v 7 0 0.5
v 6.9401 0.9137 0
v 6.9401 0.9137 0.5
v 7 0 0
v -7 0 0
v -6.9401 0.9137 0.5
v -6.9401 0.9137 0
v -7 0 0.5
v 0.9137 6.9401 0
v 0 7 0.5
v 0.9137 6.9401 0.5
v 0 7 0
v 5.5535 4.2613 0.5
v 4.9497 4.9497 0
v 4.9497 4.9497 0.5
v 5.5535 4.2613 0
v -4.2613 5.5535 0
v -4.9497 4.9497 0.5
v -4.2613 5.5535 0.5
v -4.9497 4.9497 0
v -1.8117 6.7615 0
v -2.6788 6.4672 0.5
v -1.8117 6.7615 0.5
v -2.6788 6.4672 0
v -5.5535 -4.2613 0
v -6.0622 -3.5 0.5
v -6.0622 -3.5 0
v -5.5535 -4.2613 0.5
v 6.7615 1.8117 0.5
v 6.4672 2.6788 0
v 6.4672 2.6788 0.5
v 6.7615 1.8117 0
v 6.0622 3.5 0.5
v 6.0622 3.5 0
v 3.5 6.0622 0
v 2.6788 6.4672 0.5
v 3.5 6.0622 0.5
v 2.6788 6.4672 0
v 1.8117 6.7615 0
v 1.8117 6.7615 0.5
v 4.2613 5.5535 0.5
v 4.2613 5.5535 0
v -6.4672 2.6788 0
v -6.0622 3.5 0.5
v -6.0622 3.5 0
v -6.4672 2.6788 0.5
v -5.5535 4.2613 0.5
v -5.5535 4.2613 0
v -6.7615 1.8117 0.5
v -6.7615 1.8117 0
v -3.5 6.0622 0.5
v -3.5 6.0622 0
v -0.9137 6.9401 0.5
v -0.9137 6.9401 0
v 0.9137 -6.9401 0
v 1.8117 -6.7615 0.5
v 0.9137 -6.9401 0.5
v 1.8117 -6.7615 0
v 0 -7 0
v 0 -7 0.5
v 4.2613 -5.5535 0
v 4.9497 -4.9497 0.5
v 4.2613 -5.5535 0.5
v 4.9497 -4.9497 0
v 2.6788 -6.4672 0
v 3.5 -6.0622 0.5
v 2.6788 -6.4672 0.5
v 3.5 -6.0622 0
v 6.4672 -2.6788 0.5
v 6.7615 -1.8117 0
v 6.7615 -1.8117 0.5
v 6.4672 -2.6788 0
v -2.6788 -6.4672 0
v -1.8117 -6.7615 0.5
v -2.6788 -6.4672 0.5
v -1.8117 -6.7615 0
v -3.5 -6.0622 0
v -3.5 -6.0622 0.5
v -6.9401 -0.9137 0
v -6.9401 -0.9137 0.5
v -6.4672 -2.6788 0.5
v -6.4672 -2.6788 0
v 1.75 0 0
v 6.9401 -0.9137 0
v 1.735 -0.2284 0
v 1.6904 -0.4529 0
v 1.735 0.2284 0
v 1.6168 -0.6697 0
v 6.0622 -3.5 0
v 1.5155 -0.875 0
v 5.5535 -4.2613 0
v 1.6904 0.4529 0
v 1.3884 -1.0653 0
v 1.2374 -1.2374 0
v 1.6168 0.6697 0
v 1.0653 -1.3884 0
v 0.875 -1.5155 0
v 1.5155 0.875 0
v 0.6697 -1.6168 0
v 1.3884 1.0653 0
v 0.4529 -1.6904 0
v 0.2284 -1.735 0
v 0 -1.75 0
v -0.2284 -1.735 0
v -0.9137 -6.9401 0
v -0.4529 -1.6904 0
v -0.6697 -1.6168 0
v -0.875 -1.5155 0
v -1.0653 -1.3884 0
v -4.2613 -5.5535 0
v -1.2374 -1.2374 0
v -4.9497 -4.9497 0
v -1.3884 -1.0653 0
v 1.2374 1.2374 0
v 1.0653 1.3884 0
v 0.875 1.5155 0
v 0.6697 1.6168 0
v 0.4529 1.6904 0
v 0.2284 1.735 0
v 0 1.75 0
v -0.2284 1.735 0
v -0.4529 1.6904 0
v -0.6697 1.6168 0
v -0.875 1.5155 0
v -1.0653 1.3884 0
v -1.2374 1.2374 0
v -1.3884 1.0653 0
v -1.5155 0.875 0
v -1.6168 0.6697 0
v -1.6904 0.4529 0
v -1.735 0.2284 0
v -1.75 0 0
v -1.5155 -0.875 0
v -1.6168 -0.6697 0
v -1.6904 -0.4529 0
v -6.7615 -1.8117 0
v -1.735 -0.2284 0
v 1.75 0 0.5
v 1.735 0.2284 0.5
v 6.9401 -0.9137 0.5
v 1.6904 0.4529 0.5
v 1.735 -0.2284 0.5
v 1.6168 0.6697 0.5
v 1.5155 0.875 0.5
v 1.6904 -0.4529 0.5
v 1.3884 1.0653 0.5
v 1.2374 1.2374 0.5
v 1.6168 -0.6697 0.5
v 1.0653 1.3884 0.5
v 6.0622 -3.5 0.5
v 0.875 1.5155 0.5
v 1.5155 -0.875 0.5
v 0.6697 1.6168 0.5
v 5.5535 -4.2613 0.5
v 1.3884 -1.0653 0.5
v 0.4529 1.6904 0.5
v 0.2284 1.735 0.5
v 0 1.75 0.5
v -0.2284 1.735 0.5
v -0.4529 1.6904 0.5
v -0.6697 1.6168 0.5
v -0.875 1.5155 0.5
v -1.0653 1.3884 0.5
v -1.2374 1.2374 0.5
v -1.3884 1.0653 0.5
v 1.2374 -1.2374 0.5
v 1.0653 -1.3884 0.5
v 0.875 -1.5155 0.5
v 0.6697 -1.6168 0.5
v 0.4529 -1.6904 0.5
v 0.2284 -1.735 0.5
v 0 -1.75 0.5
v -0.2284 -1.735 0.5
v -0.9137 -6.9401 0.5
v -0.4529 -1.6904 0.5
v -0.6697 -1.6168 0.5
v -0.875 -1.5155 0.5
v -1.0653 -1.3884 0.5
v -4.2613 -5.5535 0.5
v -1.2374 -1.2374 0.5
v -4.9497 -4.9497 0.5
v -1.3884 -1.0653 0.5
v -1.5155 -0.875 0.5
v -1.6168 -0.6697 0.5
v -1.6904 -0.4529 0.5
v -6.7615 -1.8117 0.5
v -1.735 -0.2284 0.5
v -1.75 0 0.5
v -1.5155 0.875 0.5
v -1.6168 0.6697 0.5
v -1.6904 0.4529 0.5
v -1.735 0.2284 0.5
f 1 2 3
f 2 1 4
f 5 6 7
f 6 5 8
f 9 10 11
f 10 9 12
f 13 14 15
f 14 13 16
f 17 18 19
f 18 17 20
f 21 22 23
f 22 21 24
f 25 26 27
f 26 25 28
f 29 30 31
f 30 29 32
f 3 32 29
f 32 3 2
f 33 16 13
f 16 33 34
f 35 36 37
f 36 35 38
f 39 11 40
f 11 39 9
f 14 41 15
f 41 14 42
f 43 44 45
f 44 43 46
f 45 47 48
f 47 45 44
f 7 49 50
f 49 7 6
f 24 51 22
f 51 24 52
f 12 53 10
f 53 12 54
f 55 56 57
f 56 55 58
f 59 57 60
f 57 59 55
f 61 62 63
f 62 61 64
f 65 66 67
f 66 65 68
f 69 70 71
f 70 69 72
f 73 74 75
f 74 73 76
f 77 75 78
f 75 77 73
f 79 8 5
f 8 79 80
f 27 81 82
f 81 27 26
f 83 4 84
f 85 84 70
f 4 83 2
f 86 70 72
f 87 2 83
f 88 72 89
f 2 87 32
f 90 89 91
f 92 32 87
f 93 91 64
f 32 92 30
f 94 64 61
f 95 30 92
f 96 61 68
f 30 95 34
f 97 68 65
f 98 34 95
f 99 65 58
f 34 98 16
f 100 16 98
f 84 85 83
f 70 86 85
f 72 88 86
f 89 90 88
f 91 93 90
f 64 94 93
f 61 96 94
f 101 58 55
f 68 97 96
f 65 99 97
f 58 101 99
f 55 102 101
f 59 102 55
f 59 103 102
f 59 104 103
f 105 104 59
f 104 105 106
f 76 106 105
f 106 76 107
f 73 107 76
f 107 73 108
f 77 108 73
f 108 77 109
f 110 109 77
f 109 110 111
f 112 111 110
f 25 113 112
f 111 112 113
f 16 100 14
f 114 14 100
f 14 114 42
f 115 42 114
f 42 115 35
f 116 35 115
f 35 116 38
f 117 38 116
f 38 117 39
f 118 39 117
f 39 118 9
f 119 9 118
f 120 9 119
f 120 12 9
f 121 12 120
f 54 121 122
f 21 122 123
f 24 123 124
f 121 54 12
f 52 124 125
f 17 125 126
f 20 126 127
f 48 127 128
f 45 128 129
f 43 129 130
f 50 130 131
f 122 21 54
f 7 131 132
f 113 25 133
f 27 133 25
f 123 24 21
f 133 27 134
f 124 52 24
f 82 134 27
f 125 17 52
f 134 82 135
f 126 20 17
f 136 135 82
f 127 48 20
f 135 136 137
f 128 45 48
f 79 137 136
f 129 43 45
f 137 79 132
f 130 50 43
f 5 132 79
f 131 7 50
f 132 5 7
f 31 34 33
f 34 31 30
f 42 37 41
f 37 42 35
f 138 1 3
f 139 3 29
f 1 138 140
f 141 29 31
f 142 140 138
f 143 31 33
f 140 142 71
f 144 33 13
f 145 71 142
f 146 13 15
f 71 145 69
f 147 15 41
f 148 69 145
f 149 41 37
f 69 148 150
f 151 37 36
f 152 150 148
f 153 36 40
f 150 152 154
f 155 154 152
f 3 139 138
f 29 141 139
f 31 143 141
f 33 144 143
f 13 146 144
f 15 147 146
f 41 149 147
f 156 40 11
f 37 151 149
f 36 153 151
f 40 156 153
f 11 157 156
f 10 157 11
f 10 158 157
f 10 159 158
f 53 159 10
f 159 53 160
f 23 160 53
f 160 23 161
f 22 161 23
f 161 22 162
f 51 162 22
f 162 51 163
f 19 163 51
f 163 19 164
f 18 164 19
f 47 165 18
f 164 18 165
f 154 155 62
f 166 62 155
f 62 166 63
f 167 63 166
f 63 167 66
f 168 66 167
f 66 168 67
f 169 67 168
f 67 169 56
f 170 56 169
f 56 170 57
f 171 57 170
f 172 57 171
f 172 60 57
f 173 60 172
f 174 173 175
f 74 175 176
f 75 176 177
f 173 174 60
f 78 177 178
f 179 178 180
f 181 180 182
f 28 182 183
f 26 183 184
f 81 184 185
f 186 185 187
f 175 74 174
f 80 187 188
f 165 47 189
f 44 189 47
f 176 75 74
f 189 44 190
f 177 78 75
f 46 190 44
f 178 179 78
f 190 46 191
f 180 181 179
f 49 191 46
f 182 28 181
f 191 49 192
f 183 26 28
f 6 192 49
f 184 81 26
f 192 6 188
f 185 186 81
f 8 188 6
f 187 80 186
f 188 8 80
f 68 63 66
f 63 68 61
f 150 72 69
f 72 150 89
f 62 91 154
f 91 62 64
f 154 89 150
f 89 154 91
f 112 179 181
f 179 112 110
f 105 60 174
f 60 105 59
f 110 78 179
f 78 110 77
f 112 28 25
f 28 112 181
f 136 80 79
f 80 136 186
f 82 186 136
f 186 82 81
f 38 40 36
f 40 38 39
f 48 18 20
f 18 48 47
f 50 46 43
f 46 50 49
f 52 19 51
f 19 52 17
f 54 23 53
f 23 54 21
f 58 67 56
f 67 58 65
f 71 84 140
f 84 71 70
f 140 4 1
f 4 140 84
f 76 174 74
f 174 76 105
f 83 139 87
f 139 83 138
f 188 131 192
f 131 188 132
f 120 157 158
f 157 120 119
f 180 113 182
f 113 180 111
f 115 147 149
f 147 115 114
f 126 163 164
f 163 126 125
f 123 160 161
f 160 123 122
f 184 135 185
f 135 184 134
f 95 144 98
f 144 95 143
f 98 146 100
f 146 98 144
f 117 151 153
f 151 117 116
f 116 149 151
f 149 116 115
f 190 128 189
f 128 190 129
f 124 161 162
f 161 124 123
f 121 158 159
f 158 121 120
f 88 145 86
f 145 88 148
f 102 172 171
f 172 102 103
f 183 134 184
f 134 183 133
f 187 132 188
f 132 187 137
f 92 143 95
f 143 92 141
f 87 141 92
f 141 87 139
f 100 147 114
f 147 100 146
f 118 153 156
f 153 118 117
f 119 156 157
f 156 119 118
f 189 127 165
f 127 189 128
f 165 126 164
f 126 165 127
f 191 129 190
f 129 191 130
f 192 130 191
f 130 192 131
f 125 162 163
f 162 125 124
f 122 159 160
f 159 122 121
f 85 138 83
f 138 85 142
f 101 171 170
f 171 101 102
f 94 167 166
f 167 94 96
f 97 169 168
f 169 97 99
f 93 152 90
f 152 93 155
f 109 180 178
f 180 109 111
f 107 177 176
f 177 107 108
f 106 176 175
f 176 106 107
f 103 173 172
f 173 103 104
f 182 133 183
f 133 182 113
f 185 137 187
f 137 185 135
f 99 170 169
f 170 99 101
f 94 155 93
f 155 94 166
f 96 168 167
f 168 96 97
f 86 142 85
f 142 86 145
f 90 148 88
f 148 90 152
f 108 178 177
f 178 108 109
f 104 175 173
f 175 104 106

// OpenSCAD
// file: parameters.scad
// =============================================================================
// Gen-BY — nightly 2026-10-11 (physics_scorer, honest magpylib watts)
// Stator-only upgrade for an existing Gen-BU: the R66 rotors and Ø158 steel are reused unchanged, and a new 12-bobbin stator with thinner 7.2 mm copper (gap 10.70 → 9.80 mm) and longer r48–84 bobbins (more copper outside the magnet ring) replaces the old one, together with a shorter gap sleeve and wider-spaced frame rods. It is the modular swap path: no new magnets or steel.
// Clocking 0 deg (magnets N facing S) + D-flat keyed bore + index notch + flip-symmetric hole map.
// Windable 2-piece bobbin; turns = physics_scorer turns_fit; copper only between flanges.
// Steel back-iron: 2× Ø158 × 4.76 mm (3/16") mild-steel discs (steel_backiron_disc.dxf); magnets sit ON the steel
// (through-pockets) -> score with --back-iron. Night 2026-10-11.
// =============================================================================
topology            = "dual_rotor";

// --- Wire / winding (physics_scorer winding-fit) -------------------------------
wire_awg            = 26;
wire_od             = 0.45;     // insulated OD mm (bare 0.405)
fill_realistic      = 0.65;     // insulated-wire area / window (DENSE layered wind with a jig; scorer cap 0.65)
turns               = 410;       // = physics_scorer turns_fit (do NOT raise)
coil_former_type    = "bobbin";
coil_core_inset     = 13.95;     // radial copper build: hub = copper boundary inset by this
wind_build_axial    = 0.0;      // nothing proud of the flanges
wind_build_radial   = 0.0;

// --- Bobbin (base + lid) ---------------------------------------------------------
coil_id_r           = 48.00;    // copper boundary sector
coil_od_r           = 84.00;
span_deg            = 26.06;    // = pitch - 2*asin((wall+0.85)/coil_id_r) -> >=1.2 mm stator web
former_web          = 7.20;     // copper height between flanges (TALL copper: steel keeps Bz up)
flange_t            = 0.80;     // >= 0.8 mm FDM wall rule (tall winds push on the flanges)
wall                = 0.80;     // flange lip beyond copper
former_bare_h       = former_web + 2 * flange_t;
coil_envelope_h     = former_bare_h + 2 * wind_build_axial;
tab_w               = 7.0;
tab_len             = 7.0;
tab_h               = former_bare_h / 2;
pin_d               = 1.9;      // 1.75 mm filament locating pin
coil_mount_r        = coil_od_r + 0.2 + 4.0;
lead_y              = 1.6;
lead_slot_w         = 0.9;
lead_groove_d       = 0.6;

// --- Gap -------------------------------------------------------------------------
run_clear           = 0.50;     // rotor face -> flange
gap_spacer_h        = run_clear + wind_build_axial;
m2m                 = coil_envelope_h + 2 * run_clear;   // rotor face to rotor face (= gap_sleeve length)

// --- Stator ----------------------------------------------------------------------
coil_stations       = 12;
bay_clear           = 0.25;
stator_thick        = former_bare_h;                        // bobbins flush both faces
stator_od           = 186.0;
shaft_clear_stator  = 14.0;     // stator is static; gap sleeve OD 12 spins inside

// --- Rotor(s) --------------------------------------------------------------------
magnet_Br           = 1.43;     // N52
magnet_d_large      = 20.0;
magnet_h_large      = 5.0;      // one O20x5 per pocket
magnet_h_small      = 5.0;      // unused: no O5 pockets in this kit
halbach_magnetisation = "none";  // NO O5 assist magnets in this kit (scan: they lower the 4-pole score)
rotor_b_same_axis   = true;     // same-index magnets share one axis: N faces S across the gap
large_pocket_d      = 20.3;
small_pocket_d      = 5.3;
pocket_h            = 5.00;     // THROUGH the carrier: magnet back face sits on the steel disc (FLUSH seat: carrier = magnet height, magnet face level with the rotor face)
large_n             = 8;
R_large             = 66.0;
small_r_list        = [];       // no O5 pockets
carrier_od          = 158.0;
carrier_thick       = pocket_h;
hub_h               = 12.0;     // > steel_t + insert: radial set-screw clears the steel
hub_od              = 24.0;     // slim hub so the M4 brace rods fit at R~18 inside the coil ring
hub_insert_d        = 4.0;      // M3 heat-set insert, radial, bears on the D-flat
rotor_b_offset_deg  = 0.0;      // CLOCKING: magnets directly opposite
shaft_key           = "dflat";
dflat_depth         = 0.5;      // 8 mm shaft with 0.5 mm flat (7.5 across flat)
index_notch_d       = 3.0;

// --- Steel back-iron (buyable laser-cut) -------------------------------------------
steel_t             = 4.76;      // mild steel thickness (image method ignores it; sized from steel_flux.py so the return path stays well below saturation)
steel_center_hole   = 26.0;     // slips over the rotor hub (OD 24)
steel_od            = carrier_od;   // steel disc OD = rotor carrier OD

// --- Modular MAX interface ----------------------------------------------------------
shaft_bore          = 8.35;
dflat_x             = 4.0 - dflat_depth + (shaft_bore - 8.0) / 2;
bearing_d           = 21.85;
bearing_h           = 7.2;
m3_clear            = 3.5;
bolt_r_inner        = 30.0;     // M3 steel-disc clamp bolts (inside the magnet ring)
bolt_n_inner        = 4;
bolt_inner_angles   = [0, 90, 180, 270];
bolt_r_outer        = 44.0;     // second M3 steel-disc clamp ring
bolt_outer_angles   = [67.5, 112.5, 247.5, 292.5];
flange_bolt_r       = 88.0;     // frame rods: OUTSIDE the rotor OD (rotors spin inside them)
flange_bolt_n       = 4;
flange_bolt_offset  = 45.00;    // between coil stations -> never cuts a lead groove/tab
brace_r             = 18.0;
brace_d             = 4.3;      // temporary M4 jack rods (assembly only)
brace_n             = 4;
brace_angles        = [45, 135, 225, 315];          // flip-symmetric

spacer_pad_od       = 14.0;
spacer_pad_id       = m3_clear;
endbell_od          = 186.0;
endbell_thick       = 8.0;
endbell_shaft_clear = 10.0;
collar_h            = 10.0;
standoff_od         = 9.0;
frame_standoff_h    = run_clear + carrier_thick + hub_h + collar_h + 2.0;
sleeve_od           = 12.0;
plate_max_mm        = 410;

$fn = 64;
// main file
// Gen-BY — assembly gap shim, h = run_clear (rotor face -> flange); copper is inside the flanges
include <parameters.scad>;
$fn = 48;
difference() {
    cylinder(d=spacer_pad_od, h=gap_spacer_h);
    translate([0, 0, -0.1]) cylinder(d=spacer_pad_id, h=gap_spacer_h + 0.2);
}
